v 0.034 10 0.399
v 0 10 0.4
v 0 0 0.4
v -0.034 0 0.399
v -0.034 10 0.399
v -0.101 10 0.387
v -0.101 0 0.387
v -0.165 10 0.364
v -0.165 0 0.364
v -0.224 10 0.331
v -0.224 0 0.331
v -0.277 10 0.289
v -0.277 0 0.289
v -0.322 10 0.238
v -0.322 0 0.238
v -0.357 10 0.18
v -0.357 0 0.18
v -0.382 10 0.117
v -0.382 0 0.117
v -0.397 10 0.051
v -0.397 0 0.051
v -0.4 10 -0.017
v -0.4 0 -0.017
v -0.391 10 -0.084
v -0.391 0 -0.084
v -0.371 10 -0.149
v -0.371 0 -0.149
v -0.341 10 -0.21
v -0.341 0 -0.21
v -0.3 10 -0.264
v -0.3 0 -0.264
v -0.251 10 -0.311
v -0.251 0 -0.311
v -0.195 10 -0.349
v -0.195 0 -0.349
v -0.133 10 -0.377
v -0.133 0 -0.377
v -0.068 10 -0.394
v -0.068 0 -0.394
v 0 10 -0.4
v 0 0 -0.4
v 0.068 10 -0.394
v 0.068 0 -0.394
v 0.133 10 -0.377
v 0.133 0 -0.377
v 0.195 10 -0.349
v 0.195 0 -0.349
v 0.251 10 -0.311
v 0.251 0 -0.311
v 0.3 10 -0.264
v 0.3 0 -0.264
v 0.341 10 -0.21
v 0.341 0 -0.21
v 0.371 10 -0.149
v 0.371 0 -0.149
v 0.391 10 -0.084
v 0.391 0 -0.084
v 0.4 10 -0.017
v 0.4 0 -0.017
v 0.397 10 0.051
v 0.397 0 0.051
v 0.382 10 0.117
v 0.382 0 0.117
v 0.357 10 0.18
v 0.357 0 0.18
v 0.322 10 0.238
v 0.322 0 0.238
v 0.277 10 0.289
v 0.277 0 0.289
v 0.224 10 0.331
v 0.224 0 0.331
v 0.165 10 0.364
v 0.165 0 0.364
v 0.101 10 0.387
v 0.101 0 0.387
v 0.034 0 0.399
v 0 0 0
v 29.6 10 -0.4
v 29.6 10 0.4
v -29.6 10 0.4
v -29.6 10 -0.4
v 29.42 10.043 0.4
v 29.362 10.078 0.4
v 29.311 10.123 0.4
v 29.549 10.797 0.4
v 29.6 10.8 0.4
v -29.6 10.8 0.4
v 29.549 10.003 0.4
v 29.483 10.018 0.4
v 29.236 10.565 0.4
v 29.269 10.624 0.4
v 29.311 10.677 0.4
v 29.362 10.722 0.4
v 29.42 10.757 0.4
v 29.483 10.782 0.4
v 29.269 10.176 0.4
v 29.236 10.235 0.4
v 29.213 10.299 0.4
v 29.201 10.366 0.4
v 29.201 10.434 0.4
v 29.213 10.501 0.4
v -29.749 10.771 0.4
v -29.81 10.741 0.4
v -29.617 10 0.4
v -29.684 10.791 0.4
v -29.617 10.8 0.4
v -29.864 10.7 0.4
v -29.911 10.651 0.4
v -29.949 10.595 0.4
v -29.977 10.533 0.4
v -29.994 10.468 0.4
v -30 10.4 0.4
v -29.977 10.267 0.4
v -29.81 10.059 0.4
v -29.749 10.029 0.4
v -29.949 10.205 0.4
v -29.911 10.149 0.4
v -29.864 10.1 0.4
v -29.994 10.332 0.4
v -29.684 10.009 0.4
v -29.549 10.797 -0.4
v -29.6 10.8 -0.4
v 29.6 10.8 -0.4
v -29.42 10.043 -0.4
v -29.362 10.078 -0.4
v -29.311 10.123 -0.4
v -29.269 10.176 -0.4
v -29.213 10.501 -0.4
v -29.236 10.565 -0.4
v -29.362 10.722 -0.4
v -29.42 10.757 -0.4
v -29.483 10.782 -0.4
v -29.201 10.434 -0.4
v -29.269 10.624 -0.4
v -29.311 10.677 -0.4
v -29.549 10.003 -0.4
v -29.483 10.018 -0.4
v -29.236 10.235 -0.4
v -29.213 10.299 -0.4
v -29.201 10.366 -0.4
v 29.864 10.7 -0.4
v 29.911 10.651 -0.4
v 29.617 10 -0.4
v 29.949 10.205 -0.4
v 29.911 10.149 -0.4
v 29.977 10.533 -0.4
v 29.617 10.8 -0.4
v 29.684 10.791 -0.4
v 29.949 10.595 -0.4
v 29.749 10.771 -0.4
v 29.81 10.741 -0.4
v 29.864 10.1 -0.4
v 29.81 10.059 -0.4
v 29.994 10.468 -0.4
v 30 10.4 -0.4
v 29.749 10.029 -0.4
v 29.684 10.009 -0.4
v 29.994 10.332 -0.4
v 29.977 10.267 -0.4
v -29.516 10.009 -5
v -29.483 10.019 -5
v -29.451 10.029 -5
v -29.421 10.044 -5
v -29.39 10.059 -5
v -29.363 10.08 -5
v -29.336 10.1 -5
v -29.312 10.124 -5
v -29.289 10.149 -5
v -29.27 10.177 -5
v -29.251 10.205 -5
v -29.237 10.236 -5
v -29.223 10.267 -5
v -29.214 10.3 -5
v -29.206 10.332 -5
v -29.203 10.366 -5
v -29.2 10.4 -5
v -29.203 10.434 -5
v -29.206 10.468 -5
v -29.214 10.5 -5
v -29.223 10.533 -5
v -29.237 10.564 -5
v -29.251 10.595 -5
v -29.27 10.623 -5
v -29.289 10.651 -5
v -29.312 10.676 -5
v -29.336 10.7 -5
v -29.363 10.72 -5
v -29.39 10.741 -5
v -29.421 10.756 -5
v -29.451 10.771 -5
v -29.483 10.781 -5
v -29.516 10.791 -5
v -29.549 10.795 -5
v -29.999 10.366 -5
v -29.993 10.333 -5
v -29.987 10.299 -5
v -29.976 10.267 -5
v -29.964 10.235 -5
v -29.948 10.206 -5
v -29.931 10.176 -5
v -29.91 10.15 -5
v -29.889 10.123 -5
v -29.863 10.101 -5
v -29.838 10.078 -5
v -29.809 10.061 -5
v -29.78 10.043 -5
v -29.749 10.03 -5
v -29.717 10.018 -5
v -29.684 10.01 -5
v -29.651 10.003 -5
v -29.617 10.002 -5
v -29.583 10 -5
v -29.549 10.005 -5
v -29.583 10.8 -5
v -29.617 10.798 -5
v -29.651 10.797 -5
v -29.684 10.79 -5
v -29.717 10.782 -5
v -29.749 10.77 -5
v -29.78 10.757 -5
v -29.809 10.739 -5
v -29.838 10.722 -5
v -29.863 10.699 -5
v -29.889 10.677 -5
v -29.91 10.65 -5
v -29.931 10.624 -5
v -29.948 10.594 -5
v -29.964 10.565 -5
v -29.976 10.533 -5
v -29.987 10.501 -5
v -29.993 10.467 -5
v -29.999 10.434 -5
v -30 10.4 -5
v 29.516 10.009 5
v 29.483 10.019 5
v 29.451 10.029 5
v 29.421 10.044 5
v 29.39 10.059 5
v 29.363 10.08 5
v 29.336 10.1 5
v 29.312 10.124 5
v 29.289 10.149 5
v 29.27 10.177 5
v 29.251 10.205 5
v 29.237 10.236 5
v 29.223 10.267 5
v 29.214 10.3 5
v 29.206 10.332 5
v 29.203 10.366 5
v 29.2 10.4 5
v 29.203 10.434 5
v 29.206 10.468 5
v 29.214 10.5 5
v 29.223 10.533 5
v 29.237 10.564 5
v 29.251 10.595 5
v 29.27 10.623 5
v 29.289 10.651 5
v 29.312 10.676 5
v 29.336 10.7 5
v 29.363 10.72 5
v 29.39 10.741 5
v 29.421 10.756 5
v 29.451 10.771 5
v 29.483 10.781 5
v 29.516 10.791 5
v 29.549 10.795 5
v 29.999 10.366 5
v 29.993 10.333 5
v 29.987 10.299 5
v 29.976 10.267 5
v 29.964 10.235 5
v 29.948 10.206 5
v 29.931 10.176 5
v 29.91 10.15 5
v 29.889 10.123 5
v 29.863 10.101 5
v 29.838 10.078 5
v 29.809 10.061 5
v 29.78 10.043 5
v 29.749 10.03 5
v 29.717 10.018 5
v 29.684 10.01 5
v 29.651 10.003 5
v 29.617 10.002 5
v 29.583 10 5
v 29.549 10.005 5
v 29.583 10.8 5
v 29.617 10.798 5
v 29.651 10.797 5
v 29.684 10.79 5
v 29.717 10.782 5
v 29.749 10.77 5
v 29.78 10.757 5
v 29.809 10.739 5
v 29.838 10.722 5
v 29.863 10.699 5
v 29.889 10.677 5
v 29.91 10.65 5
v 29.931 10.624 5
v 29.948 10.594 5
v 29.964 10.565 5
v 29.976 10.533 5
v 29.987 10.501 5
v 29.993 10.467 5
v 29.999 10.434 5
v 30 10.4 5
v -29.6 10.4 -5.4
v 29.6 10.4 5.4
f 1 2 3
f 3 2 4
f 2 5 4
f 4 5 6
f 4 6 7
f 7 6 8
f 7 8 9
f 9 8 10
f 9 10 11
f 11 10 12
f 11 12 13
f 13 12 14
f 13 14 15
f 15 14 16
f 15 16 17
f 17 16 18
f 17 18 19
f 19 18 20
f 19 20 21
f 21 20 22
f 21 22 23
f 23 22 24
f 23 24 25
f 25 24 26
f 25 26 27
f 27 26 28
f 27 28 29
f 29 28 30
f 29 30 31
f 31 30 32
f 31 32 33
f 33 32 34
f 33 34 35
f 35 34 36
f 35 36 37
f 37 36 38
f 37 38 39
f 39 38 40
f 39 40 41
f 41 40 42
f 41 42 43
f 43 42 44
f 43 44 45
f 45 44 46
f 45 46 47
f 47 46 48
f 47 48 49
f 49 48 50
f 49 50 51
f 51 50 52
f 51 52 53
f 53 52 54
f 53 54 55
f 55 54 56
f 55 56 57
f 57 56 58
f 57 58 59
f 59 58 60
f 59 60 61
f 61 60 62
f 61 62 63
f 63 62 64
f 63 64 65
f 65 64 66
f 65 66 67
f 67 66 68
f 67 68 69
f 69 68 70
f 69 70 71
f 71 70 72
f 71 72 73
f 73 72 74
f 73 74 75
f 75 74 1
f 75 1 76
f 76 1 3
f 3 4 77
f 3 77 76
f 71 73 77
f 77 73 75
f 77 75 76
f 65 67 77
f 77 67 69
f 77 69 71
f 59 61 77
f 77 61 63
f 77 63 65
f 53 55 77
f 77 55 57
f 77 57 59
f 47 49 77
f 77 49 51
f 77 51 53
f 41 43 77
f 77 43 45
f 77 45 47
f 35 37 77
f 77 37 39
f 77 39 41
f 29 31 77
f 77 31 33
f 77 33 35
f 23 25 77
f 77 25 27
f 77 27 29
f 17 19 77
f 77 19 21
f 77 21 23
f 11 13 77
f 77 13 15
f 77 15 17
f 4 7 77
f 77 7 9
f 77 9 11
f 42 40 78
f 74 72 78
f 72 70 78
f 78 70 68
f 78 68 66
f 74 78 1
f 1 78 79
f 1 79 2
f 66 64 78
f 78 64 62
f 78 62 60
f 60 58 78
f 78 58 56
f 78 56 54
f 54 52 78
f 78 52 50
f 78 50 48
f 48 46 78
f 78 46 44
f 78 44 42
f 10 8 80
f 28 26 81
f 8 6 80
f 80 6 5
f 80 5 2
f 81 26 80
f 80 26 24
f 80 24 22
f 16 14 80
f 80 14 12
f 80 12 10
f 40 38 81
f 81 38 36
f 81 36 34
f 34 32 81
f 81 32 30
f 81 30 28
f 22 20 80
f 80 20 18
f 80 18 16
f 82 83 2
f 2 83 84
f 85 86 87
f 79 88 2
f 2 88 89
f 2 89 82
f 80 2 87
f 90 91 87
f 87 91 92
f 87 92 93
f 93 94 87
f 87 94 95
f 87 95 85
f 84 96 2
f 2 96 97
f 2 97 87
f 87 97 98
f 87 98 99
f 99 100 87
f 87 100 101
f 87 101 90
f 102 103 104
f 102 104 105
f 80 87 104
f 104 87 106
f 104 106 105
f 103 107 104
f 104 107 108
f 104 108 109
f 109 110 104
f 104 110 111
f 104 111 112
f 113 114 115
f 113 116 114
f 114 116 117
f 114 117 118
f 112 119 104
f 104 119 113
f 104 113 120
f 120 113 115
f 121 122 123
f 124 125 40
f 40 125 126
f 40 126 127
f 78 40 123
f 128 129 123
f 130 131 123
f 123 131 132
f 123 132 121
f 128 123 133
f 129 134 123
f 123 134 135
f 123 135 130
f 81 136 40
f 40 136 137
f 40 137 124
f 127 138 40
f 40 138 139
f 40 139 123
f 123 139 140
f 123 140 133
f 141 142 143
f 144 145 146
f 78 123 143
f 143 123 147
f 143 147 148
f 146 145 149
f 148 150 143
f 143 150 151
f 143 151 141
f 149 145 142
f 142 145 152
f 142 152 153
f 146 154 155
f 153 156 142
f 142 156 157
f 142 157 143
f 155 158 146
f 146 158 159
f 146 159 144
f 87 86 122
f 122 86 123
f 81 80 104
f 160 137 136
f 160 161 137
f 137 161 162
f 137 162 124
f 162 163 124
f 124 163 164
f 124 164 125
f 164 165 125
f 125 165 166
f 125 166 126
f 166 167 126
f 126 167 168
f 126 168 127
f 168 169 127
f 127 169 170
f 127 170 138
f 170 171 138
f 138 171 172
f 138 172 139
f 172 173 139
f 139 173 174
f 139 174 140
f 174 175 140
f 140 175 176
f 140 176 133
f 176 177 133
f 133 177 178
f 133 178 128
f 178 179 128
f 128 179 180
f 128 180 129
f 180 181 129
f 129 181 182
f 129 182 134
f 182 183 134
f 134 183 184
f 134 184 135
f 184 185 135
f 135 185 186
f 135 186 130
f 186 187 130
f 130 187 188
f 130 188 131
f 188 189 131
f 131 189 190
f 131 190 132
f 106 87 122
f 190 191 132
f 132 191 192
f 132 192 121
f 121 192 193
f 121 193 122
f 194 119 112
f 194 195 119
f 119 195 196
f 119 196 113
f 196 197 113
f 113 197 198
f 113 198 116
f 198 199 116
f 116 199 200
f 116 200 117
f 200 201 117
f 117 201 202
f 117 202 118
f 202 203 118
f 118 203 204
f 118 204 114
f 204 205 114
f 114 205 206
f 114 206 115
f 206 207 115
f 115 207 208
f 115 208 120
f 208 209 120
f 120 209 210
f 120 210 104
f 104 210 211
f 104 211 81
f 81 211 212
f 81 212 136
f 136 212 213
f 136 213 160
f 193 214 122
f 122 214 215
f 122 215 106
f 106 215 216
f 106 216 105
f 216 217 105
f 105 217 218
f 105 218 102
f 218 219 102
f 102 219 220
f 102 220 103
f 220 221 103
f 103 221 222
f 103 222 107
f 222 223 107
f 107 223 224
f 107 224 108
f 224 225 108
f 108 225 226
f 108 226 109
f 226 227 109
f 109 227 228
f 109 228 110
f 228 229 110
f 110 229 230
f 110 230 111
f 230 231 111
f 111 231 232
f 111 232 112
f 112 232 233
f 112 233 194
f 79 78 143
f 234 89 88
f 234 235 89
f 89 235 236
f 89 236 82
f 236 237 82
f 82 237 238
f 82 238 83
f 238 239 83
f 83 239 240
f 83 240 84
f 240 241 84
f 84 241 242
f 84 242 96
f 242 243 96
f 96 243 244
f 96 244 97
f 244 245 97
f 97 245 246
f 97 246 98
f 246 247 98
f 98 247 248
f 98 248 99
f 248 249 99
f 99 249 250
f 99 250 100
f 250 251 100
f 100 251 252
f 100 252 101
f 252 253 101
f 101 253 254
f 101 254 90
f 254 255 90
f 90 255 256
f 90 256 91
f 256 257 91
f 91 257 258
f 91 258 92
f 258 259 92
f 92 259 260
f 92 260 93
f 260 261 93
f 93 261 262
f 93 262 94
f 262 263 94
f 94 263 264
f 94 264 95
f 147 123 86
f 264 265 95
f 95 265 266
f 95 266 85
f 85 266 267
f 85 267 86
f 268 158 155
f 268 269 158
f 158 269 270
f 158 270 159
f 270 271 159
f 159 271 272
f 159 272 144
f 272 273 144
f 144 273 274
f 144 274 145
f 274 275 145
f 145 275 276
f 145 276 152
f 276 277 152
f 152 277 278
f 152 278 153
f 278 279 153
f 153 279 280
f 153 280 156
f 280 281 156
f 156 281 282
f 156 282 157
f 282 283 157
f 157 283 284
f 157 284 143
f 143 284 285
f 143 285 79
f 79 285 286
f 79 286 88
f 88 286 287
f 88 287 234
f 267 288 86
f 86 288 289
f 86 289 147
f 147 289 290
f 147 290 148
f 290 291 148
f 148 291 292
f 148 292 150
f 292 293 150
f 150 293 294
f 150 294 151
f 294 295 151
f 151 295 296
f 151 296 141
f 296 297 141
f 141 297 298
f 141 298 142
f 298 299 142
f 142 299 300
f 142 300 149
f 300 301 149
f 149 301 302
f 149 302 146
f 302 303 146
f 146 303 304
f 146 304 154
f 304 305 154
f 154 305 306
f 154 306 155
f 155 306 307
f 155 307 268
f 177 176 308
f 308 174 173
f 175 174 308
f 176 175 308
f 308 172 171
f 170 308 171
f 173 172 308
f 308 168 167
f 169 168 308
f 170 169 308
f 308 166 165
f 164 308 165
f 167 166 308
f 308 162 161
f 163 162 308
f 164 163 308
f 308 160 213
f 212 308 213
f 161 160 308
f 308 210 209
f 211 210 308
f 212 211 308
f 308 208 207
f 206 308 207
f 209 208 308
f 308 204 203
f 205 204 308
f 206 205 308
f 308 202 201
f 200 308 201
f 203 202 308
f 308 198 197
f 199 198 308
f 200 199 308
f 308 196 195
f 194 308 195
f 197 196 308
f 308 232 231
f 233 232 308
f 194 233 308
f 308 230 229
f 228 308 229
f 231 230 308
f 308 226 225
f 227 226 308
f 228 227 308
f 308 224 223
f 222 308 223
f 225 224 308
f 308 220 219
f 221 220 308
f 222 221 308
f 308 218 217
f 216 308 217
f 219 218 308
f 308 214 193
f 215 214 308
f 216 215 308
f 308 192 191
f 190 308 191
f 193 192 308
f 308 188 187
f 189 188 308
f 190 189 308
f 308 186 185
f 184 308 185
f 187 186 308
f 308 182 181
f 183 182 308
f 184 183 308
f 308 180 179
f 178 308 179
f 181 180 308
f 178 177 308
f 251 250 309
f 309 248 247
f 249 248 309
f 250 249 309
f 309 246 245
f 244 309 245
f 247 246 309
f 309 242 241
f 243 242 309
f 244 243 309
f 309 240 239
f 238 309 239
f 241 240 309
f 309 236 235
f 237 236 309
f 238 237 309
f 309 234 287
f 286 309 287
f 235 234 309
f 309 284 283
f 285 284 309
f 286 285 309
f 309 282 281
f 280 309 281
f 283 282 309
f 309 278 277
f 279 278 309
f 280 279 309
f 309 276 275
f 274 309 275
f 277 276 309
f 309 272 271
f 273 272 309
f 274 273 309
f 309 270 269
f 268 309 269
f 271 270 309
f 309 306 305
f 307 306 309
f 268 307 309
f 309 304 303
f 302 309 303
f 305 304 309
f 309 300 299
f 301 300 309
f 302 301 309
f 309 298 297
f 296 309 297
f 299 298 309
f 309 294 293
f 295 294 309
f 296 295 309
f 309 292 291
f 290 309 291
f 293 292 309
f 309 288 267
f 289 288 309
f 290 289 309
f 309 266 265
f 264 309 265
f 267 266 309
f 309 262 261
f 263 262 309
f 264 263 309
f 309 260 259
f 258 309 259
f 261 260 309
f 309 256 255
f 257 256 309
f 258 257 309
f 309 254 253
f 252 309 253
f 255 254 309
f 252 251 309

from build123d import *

# Parameters (mm, degrees)
SKETCH_1_R      = 0.4
EXTRUDE_1_DEPTH = 10
SKETCH_2_W      = 60
SKETCH_2_H      = 0.8
EXTRUDE_2_DEPTH = 0.8
FILLET_1_R      = 0.4
SKETCH_3_R      = 0.4
EXTRUDE_3_DEPTH = 5
SKETCH_4_R      = 0.4
EXTRUDE_4_DEPTH = 5
CHAMFER_1_SIZE  = 0.4


with BuildPart() as part:
    # 草图1 → 凸台-拉伸1 (new body)
    with BuildSketch(Plane(origin=(0, 0, 0), x_dir=(1, 0, 0), z_dir=(0, 1, 0))):
        with Locations(Location((0, 0, 0), (0, 0, 270))):
            Circle(SKETCH_1_R)
    extrude(amount=EXTRUDE_1_DEPTH)

    # 草图2 → 凸台-拉伸2 (add)
    with BuildSketch(Plane(origin=(0, 10, 0), x_dir=(1, 0, 0), z_dir=(0, 1, 0))):
        Rectangle(SKETCH_2_W, SKETCH_2_H)
    extrude(amount=EXTRUDE_2_DEPTH)

    # 圆角1
    fillet_1_edges = [part.edges().sort_by_distance(p)[0] for p in [
        (30, 10, 0),
        (30, 10.8, 0),
        (-30, 10, 0),
        (-30, 10.8, 0),
    ]]
    fillet(fillet_1_edges, radius=FILLET_1_R - 0.0001)  # a hair under: the kernel refuses the full size

    # 草图3 → 凸台-拉伸3 (add)
    with BuildSketch(Plane.XY.offset(0.4)):
        with Locations((29.6, 10.4)):
            Circle(SKETCH_3_R)
    extrude(amount=EXTRUDE_3_DEPTH)

    # 草图4 → 凸台-拉伸4 (add)
    with BuildSketch(Plane(origin=(0, 0, -0.4), x_dir=(-1, 0, 0), z_dir=(0, 0, -1))):
        with Locations((29.6, 10.4)):
            Circle(SKETCH_4_R)
    extrude(amount=EXTRUDE_4_DEPTH)

    # 倒角1
    chamfer_1_edges = [part.edges().sort_by_distance(p)[0] for p in [
        (29.2, 10.4, 5.4),
        (-29.2, 10.4, -5.4),
    ]]
    chamfer(chamfer_1_edges, length=CHAMFER_1_SIZE)


solid = part.part
